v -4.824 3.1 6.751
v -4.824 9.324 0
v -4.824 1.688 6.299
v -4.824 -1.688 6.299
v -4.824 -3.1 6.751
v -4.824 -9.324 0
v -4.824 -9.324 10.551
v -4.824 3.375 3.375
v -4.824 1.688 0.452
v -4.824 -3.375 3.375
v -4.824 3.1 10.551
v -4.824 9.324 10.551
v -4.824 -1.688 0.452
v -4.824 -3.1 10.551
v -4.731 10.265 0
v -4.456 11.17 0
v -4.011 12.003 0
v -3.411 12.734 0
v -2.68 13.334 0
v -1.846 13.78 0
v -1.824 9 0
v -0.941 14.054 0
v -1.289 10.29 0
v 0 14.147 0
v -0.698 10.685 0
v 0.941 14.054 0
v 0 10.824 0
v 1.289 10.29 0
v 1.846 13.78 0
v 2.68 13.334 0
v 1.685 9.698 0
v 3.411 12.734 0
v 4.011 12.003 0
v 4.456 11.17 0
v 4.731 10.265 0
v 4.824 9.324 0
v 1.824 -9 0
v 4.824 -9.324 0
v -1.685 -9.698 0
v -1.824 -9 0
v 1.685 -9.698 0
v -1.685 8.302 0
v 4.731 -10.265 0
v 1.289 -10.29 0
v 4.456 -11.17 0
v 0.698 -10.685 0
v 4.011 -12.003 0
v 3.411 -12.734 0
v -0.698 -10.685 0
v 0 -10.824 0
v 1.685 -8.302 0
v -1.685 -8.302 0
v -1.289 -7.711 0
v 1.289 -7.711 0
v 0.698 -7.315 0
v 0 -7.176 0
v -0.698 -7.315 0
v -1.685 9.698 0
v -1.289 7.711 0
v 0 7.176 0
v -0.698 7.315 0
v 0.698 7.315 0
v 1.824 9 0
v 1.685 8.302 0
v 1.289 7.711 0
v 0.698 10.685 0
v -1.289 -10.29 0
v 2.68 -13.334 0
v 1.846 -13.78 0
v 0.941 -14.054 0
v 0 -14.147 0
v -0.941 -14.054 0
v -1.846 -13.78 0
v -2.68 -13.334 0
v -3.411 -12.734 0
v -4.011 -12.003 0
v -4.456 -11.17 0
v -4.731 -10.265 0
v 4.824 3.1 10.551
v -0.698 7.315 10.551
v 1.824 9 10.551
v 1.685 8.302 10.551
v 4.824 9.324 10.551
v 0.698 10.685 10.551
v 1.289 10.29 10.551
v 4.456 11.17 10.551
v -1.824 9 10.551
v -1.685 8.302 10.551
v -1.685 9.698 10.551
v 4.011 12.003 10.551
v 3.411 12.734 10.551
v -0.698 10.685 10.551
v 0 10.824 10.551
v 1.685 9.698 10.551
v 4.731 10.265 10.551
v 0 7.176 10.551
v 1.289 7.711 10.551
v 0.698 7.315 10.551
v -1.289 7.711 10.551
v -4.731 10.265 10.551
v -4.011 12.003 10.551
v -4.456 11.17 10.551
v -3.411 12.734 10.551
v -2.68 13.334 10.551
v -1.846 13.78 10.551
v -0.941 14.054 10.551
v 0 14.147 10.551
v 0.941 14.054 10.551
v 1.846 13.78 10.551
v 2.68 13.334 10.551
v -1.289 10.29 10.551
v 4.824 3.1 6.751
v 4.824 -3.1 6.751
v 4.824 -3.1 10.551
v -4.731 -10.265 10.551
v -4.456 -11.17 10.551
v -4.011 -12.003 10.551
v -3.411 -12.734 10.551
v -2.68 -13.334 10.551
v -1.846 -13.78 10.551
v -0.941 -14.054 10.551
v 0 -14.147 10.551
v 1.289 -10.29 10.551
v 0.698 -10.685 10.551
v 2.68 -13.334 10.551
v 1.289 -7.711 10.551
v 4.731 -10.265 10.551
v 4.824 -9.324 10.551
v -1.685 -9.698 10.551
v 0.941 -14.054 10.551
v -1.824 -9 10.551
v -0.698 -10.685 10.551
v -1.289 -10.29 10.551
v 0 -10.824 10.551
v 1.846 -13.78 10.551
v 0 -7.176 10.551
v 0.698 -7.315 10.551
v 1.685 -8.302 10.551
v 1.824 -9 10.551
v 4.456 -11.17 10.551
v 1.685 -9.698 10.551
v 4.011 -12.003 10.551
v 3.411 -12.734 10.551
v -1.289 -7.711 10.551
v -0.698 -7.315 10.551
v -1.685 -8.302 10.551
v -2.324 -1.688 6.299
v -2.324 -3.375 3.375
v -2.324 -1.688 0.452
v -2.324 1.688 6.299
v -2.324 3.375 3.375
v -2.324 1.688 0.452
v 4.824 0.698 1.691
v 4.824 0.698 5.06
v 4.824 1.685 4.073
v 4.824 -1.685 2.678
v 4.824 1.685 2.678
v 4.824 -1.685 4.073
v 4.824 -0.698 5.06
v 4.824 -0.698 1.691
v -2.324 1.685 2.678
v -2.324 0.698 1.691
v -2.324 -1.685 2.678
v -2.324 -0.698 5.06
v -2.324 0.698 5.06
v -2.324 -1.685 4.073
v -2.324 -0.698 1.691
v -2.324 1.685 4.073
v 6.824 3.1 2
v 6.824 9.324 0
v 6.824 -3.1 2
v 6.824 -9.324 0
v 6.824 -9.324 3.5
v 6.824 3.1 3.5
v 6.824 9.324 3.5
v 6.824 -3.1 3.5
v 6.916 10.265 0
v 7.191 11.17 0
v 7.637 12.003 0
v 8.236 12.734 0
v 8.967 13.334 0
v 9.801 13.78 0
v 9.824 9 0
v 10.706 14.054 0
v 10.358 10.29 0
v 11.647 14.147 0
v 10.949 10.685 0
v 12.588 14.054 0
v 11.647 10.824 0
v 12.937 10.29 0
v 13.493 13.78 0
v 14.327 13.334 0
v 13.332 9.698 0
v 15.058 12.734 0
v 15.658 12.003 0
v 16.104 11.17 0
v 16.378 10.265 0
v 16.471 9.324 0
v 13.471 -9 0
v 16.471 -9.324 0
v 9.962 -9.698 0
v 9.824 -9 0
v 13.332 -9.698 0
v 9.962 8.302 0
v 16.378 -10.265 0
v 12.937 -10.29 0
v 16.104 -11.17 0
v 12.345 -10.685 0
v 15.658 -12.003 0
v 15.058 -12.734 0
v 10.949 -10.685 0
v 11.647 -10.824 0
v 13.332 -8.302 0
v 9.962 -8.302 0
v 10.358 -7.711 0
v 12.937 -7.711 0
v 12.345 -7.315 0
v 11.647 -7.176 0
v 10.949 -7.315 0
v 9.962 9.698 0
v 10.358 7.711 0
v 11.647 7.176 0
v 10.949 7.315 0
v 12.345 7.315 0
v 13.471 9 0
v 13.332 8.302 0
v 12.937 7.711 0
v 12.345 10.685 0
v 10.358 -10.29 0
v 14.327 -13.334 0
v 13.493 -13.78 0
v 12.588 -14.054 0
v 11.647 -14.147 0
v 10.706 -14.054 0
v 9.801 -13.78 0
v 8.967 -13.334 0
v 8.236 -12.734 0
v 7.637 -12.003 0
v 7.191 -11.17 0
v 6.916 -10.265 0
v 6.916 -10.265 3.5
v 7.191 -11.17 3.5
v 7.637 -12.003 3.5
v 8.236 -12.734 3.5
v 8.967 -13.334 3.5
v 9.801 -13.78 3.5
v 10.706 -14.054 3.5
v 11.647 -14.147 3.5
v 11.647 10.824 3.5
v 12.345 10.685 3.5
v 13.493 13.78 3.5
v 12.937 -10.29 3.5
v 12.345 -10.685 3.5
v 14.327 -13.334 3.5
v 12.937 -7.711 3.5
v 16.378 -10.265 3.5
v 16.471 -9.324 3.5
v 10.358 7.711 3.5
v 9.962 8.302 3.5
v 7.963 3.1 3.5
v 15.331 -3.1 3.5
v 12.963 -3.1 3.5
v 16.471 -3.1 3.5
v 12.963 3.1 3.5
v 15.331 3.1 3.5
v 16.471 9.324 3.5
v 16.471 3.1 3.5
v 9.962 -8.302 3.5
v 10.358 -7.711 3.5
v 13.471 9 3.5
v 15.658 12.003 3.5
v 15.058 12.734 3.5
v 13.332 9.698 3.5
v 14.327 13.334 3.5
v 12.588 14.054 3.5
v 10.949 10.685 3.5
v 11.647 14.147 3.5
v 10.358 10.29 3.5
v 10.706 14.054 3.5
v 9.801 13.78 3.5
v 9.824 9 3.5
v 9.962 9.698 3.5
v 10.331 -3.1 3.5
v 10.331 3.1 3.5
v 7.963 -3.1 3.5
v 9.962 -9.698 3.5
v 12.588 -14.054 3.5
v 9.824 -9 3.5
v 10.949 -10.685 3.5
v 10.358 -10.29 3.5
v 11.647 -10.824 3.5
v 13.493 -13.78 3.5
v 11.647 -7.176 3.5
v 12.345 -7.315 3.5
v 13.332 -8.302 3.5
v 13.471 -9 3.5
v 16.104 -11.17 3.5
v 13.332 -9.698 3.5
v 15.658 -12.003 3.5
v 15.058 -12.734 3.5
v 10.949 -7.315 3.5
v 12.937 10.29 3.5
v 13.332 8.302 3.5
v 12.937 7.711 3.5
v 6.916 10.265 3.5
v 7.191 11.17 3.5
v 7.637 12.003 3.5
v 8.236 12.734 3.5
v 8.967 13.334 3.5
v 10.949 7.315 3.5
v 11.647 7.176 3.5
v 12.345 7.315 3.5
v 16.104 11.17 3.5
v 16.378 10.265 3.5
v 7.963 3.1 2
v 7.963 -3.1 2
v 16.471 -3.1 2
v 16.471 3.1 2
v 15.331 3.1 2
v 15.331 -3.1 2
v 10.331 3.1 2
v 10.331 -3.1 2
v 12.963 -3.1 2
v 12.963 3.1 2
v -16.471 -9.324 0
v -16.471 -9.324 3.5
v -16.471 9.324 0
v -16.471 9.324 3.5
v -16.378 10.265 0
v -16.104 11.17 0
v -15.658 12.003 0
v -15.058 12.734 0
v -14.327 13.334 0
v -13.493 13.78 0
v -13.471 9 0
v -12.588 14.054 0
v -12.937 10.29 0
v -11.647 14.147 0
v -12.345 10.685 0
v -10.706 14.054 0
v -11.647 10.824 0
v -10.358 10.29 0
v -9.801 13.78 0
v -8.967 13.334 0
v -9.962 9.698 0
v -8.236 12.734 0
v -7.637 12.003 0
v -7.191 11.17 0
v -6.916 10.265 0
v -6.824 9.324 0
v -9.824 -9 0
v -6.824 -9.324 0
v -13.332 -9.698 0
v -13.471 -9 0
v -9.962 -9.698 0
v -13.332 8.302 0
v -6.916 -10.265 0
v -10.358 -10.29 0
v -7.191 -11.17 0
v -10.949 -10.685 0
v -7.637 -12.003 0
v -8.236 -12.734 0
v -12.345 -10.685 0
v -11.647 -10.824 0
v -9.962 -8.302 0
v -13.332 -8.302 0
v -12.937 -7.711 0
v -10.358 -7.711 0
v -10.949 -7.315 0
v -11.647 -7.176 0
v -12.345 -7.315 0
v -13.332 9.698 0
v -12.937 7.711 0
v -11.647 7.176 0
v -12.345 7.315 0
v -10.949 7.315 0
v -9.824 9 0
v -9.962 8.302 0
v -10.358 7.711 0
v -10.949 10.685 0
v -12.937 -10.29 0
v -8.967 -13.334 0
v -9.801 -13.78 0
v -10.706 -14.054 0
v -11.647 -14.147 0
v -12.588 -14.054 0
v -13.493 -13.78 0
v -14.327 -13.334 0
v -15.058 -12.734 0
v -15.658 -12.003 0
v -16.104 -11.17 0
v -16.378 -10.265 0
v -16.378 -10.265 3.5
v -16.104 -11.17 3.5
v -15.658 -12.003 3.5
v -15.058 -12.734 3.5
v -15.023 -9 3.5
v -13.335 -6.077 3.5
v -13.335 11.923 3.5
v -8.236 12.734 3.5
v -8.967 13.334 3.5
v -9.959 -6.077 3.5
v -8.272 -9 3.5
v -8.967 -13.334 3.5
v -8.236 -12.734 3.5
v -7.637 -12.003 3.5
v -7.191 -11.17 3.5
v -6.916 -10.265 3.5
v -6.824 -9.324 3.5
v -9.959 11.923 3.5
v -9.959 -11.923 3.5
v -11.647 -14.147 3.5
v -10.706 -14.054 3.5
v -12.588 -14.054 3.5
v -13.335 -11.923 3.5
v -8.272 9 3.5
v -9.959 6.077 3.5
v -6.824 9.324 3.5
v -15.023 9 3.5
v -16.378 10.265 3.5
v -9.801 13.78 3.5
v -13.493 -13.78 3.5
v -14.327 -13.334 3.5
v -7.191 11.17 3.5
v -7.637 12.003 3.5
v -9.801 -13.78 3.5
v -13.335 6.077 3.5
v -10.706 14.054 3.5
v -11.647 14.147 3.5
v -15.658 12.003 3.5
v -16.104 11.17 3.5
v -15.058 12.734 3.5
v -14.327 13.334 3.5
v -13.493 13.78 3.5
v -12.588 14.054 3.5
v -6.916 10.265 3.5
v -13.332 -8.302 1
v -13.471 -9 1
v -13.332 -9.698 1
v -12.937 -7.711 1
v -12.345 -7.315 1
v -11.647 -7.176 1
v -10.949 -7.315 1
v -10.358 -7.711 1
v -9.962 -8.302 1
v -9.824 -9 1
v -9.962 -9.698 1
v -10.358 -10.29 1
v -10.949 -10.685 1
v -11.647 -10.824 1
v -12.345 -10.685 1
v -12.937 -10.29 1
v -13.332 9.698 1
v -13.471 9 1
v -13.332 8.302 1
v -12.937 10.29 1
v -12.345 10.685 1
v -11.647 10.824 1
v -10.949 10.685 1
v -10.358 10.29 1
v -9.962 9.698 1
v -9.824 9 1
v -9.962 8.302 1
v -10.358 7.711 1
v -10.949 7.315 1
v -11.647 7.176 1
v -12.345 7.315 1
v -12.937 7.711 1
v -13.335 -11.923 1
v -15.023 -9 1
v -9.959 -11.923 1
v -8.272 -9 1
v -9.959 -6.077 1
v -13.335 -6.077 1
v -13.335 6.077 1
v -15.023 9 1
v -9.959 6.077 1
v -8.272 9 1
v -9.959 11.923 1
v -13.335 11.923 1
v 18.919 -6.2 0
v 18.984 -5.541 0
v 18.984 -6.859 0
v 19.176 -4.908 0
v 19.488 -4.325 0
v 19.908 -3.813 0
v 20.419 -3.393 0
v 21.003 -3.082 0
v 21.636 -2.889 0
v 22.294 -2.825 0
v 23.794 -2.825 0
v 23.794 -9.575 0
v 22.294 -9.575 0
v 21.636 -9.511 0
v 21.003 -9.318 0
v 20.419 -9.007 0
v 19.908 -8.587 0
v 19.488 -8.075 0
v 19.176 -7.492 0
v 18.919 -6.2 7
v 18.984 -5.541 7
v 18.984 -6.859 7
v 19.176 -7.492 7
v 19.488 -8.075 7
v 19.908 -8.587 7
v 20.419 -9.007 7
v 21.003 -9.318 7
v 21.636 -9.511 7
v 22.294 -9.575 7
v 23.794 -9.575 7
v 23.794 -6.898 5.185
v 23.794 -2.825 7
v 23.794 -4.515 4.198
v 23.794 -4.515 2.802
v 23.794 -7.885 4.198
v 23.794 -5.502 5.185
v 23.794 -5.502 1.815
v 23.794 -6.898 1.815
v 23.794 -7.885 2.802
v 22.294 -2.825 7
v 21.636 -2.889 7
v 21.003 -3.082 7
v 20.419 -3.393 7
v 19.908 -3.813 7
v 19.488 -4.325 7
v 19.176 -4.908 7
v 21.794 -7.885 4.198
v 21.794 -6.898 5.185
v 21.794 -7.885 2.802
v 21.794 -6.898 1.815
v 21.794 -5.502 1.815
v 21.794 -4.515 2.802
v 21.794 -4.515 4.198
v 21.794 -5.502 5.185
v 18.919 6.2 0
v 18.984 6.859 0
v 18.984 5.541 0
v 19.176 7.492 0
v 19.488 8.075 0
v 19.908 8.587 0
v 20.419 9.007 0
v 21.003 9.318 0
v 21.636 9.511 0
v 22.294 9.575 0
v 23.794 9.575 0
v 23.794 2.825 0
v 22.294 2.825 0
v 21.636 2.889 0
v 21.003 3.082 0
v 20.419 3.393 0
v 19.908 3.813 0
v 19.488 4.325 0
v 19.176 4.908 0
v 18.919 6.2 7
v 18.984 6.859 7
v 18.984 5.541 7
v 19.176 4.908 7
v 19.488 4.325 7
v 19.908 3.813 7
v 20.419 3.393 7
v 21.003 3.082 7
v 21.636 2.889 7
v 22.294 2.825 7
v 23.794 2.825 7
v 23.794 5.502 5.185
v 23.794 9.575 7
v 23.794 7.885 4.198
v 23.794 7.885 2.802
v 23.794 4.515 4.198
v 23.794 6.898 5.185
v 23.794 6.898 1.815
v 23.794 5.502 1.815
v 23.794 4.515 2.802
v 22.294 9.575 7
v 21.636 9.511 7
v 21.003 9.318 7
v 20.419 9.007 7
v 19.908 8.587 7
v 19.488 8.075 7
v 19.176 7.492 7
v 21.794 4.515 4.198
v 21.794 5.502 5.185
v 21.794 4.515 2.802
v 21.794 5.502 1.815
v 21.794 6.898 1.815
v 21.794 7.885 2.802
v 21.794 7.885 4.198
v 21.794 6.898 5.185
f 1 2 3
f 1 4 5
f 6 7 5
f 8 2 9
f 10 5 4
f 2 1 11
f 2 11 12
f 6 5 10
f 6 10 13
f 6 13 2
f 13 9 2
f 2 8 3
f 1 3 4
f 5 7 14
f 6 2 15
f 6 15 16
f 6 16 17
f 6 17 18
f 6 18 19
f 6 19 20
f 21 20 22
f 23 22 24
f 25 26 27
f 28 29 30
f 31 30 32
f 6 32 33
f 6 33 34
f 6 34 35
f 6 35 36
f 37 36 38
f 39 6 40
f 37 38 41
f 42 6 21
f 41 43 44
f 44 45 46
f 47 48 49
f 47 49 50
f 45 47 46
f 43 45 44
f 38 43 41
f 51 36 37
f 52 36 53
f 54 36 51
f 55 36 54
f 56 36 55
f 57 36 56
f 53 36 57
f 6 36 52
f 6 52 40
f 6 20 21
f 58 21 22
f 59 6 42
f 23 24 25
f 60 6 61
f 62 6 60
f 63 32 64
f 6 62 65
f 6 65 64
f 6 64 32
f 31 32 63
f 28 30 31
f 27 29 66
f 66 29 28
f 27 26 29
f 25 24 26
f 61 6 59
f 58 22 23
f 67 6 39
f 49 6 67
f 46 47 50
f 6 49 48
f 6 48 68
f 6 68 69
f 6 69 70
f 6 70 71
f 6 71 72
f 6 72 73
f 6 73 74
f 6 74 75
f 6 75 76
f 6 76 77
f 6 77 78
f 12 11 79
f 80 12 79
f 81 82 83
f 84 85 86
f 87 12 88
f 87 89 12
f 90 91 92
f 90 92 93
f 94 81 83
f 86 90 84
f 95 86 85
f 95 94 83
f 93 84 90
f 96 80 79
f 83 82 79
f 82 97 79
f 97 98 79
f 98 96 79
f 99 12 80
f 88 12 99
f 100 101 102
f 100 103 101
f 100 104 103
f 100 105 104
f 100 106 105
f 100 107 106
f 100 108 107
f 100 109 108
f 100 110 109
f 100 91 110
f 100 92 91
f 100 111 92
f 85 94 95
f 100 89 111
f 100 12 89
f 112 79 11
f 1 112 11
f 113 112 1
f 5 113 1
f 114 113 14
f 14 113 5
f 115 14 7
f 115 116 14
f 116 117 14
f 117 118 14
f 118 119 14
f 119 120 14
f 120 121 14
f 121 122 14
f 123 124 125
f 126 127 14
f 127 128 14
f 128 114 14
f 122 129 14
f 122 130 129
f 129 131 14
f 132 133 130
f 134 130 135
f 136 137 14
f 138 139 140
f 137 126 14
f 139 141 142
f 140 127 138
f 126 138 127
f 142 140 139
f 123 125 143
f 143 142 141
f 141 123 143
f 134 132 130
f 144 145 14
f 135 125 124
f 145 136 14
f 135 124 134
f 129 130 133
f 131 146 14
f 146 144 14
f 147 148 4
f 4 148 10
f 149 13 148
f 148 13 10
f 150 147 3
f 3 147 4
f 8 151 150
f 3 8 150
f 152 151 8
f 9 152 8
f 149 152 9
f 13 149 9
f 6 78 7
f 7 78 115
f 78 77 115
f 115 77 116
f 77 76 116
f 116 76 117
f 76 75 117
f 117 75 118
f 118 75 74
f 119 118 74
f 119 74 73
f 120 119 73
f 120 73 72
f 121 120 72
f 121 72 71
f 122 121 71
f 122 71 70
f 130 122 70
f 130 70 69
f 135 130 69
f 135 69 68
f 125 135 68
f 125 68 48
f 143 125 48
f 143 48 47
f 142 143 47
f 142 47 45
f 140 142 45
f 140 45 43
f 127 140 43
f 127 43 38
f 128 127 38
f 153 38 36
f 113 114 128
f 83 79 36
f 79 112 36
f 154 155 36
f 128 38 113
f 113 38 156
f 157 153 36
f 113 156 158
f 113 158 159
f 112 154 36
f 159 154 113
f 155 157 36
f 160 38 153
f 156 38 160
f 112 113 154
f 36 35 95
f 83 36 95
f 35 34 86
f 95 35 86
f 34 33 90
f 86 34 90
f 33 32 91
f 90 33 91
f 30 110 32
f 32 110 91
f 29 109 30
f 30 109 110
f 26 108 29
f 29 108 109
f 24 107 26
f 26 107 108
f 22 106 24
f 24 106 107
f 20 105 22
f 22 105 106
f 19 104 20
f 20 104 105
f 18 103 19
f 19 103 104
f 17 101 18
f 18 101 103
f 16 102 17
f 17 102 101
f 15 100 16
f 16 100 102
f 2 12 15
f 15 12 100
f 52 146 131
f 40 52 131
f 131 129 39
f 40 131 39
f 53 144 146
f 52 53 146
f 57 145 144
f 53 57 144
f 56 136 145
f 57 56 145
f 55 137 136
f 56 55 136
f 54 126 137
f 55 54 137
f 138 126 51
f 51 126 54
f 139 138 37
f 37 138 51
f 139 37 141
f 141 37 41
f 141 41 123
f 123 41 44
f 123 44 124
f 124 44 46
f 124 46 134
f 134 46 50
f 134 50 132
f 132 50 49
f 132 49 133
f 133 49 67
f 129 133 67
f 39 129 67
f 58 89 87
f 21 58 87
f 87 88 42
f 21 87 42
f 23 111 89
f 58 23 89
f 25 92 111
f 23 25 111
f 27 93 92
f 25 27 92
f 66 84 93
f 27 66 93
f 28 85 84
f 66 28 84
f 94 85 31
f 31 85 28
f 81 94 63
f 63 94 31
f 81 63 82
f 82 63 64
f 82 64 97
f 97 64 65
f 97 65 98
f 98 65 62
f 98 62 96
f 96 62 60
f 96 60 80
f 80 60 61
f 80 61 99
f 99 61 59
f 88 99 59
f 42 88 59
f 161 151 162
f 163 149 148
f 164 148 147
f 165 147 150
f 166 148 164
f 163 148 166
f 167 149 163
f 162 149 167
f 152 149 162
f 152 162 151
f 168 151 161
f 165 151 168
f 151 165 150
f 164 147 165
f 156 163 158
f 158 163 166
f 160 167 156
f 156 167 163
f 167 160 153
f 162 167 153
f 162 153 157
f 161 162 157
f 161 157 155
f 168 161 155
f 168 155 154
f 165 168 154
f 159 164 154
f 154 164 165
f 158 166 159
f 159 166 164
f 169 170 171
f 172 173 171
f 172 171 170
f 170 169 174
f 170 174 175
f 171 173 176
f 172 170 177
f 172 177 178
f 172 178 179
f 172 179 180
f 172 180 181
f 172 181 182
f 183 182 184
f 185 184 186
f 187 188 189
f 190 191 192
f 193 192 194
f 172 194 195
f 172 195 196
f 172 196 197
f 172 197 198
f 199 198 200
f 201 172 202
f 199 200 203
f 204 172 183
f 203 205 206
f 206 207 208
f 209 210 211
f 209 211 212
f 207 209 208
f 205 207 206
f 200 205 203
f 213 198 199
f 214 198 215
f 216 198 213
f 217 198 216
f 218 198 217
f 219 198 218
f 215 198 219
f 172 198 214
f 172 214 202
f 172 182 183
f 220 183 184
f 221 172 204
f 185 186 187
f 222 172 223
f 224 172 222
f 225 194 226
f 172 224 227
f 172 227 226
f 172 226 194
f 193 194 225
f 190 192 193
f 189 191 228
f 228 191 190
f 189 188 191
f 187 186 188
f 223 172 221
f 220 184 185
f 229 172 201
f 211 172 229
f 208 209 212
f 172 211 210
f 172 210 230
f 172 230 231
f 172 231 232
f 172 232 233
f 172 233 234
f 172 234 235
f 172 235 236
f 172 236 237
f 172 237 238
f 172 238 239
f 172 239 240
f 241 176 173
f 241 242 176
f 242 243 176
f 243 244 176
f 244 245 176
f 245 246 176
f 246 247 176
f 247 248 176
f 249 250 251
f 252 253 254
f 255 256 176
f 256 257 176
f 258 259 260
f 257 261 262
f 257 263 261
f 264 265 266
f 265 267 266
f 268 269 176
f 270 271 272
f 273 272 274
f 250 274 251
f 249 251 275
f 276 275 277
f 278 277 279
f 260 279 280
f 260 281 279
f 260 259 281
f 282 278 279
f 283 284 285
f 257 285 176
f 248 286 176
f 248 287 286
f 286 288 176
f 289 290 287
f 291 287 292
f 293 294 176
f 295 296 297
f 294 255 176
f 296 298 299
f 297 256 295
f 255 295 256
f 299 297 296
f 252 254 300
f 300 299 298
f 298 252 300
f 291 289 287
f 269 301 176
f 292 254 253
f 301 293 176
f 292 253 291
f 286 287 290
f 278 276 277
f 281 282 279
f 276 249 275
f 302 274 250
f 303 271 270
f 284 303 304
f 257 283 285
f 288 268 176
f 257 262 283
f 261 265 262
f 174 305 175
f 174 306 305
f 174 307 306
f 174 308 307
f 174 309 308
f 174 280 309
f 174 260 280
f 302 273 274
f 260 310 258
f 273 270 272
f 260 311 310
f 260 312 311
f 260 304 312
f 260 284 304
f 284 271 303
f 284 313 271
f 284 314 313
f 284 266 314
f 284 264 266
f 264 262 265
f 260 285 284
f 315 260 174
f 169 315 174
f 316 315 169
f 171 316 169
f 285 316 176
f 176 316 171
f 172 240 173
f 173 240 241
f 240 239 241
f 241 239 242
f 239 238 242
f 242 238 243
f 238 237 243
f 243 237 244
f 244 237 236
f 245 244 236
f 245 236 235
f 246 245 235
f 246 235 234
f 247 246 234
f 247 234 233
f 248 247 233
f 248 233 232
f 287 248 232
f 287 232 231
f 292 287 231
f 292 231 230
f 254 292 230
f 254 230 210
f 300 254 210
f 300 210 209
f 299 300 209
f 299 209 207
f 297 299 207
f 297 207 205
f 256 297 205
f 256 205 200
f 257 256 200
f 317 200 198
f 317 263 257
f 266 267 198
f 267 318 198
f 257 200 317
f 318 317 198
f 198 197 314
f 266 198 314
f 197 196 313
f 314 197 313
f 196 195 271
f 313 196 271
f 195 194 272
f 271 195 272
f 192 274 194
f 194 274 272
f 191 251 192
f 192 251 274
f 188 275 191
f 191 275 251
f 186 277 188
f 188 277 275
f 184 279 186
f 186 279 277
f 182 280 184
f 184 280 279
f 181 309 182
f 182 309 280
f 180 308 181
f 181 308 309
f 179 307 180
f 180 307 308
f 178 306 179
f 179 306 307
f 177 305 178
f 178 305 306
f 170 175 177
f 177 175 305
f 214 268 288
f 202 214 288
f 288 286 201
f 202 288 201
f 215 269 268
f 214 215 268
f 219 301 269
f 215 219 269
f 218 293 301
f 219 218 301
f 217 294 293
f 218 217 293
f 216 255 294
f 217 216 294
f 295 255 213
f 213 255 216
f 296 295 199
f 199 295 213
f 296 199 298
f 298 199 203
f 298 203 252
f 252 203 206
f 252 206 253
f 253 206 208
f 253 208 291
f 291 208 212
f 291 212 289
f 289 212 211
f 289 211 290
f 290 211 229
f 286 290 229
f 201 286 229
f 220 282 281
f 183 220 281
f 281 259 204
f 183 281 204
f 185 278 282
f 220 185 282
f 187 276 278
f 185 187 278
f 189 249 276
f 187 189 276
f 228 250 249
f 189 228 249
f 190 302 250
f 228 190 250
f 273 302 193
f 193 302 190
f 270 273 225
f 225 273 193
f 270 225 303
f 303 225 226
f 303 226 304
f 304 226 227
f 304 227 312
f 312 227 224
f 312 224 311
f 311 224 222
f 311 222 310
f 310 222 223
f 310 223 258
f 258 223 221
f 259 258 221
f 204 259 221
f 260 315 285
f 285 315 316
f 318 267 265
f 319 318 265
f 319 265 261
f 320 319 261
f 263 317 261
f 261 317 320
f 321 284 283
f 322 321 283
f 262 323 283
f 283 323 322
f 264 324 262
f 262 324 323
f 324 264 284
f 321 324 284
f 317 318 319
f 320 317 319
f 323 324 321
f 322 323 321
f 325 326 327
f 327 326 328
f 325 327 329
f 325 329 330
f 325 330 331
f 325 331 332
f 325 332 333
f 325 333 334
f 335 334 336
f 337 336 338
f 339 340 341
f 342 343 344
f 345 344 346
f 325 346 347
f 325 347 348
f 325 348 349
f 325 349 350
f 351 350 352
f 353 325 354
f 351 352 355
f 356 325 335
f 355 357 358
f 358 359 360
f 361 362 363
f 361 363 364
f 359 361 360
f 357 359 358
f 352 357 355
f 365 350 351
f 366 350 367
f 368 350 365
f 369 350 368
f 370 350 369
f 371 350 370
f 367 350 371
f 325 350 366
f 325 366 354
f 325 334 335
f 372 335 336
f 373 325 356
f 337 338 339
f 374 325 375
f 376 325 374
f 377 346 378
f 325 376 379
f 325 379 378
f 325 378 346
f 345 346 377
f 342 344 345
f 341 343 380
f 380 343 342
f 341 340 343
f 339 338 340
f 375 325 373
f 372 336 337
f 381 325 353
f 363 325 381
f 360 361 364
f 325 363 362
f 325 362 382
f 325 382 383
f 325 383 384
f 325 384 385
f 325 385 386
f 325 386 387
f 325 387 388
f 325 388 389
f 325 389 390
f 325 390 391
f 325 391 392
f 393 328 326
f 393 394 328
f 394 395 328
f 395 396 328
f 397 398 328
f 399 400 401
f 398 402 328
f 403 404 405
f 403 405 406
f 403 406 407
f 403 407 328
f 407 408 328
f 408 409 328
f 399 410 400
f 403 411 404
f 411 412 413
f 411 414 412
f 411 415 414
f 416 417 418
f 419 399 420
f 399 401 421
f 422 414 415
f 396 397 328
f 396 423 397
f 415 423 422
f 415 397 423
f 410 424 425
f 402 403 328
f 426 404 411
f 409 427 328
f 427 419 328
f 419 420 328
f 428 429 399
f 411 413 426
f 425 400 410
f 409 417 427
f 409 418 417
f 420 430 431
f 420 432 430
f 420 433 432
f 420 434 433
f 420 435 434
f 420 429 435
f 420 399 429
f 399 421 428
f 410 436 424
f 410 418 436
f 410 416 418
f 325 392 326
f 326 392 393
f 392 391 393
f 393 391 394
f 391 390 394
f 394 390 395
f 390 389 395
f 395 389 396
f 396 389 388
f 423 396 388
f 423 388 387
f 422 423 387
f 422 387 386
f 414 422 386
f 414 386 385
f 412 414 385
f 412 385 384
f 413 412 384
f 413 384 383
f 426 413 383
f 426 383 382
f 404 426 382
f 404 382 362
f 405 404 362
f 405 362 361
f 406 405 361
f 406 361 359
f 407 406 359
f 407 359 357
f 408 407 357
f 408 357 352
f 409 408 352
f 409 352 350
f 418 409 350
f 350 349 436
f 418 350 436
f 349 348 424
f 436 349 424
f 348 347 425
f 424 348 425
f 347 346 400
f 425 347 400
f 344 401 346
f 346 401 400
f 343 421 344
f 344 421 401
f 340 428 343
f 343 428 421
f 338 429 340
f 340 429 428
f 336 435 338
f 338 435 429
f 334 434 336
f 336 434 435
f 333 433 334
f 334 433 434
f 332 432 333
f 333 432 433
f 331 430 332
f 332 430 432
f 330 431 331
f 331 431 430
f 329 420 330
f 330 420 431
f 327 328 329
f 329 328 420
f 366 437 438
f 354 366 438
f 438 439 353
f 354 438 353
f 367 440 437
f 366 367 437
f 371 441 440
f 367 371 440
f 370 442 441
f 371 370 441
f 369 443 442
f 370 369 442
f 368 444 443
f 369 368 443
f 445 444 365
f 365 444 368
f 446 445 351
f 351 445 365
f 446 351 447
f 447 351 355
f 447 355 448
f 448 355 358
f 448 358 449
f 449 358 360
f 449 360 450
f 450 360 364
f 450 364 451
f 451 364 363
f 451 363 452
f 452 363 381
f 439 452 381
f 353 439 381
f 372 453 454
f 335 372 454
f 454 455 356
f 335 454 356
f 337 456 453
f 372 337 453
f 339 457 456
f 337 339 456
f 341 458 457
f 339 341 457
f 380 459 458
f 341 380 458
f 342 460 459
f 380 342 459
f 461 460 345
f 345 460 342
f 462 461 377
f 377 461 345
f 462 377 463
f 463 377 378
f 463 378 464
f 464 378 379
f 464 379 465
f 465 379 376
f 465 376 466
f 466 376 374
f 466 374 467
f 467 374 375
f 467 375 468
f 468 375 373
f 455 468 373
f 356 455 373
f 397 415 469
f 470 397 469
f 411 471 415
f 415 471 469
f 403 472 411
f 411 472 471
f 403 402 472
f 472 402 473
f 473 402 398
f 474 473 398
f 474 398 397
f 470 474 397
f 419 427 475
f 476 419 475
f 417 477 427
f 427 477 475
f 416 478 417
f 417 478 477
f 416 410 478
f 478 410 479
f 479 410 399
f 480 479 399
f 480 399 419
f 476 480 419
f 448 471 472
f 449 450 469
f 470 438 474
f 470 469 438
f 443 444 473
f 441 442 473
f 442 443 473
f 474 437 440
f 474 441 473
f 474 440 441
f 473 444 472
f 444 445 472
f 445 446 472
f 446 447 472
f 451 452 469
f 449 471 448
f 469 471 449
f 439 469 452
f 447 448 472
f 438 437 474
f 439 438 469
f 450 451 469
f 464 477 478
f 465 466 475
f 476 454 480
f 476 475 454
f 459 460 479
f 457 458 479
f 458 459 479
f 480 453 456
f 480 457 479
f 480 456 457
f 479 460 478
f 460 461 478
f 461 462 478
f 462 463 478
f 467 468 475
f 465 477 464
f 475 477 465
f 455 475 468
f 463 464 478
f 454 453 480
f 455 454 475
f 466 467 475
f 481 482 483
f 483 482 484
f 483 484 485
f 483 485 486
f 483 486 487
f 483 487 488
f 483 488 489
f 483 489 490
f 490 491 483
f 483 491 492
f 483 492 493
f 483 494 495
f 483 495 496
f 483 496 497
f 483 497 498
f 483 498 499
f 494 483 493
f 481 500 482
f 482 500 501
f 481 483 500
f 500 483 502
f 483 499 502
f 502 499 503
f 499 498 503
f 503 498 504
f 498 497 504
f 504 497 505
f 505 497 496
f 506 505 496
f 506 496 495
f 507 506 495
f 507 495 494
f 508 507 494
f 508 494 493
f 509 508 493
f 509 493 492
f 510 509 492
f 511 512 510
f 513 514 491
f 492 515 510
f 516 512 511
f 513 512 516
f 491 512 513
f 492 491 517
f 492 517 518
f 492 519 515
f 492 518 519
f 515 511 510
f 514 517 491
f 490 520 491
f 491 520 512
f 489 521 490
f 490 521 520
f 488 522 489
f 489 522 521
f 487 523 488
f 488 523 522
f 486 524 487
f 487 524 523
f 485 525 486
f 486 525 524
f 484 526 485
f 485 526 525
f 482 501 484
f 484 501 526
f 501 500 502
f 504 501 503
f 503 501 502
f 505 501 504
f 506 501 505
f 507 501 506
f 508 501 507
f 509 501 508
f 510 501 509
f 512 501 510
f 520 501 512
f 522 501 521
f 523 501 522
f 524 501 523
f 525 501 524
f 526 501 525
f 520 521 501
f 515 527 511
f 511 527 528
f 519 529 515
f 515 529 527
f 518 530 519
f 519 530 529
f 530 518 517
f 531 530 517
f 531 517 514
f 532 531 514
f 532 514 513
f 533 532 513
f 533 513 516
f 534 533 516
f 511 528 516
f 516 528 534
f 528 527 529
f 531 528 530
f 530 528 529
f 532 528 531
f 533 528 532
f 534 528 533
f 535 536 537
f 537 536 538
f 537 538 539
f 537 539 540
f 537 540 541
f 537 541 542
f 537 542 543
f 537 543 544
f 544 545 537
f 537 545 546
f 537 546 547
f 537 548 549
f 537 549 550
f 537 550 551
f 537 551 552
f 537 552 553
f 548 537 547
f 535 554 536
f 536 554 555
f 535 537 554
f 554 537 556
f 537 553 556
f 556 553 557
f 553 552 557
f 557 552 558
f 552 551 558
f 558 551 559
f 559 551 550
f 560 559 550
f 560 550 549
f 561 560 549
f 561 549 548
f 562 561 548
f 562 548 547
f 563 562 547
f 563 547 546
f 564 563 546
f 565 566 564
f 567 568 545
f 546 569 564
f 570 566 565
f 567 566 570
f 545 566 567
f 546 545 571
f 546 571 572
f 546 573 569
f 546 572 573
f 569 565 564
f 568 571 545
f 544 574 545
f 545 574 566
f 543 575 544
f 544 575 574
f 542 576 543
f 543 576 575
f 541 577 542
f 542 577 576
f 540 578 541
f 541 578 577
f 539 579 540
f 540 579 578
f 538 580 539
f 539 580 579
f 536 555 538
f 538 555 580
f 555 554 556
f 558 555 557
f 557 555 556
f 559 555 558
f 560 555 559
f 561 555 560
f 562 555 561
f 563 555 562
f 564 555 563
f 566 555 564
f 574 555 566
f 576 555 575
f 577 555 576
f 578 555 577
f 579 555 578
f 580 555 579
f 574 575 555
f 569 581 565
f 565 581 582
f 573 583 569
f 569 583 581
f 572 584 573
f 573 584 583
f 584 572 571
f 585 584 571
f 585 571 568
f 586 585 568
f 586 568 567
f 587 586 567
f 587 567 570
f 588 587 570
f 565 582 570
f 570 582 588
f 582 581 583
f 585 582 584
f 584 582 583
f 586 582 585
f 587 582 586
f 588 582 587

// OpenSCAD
belt_pitch = 5;
belt_width = 6.2;
belt_height = 3.8;

hole_spacing = 18;

ram_length = 1.5;

m3_diameter = 3 / cos(180 / 8) + 0.4;
m3_radius = m3_diameter / 2;

m3_nut_diameter = 5.5 / cos(180 / 6) + 0.4;
m3_nut_radius = m3_nut_diameter / 2;

m3_nut_depth = 2.5;

wall = 3;
extrusion_width = 0.4;

clamp_height = 3.5;
belt_depth = 2;

ram_height = 7;

module clamp(h=10) {
	translate([-wall - m3_radius, 0, 0])
	difference() {
		intersection() {
			translate([0, belt_width / -2 - m3_diameter - wall - extrusion_width * 2 - ((hole_spacing-10)/2), 0]) cube([wall * 2 + m3_diameter, belt_width + m3_diameter * 2 + wall * 2 + extrusion_width * 4 + (hole_spacing-10), h]);
			union() {
				translate([wall + m3_radius, belt_width / 2 + m3_radius + extrusion_width + ((hole_spacing-10)/2), 0]) cylinder(r=wall + m3_radius, h=h + 1, $fn=32);
				translate([wall + m3_radius, -belt_width / 2 - m3_radius - extrusion_width - ((hole_spacing-10)/2), 0]) cylinder(r=wall + m3_radius, h=h + 1, $fn=32);
				translate([0, -belt_width / 2 - m3_radius - extrusion_width - ((hole_spacing-10)/2), 0]) cube([wall * 2 + m3_diameter, belt_width + m3_diameter  + extrusion_width * 2 + (hole_spacing-10), h + 1]);
			}
		}
		translate([wall + m3_radius, hole_spacing/2, -1]) cylinder(r=m3_radius, h=h + 2, $fn=16);
		translate([wall + m3_radius, -hole_spacing/2, -1]) cylinder(r=m3_radius, h=h + 2, $fn=16);
	}
}

module clamp_base() {
	difference() {
		clamp(belt_height + m3_nut_diameter);

		translate([-1 - wall - m3_radius, -belt_width / 2, m3_nut_diameter]) cube([wall * 4, belt_width, belt_height + 1]);
		translate([-1 - wall - m3_radius, 0, m3_nut_radius]) rotate([0, 90, 0]) rotate([0, 0, 180 / 8]) cylinder(r=m3_radius, h=wall * 4, $fn=8);
		translate([-1 - wall - m3_radius, 0, m3_nut_radius]) rotate([0, 90, 0]) rotate([0, 0, 180 / 6]) cylinder(r=m3_nut_radius, h=1 + m3_nut_depth, $fn=6);
	}
}

module clamp_top() {
	difference() {
		clamp(clamp_height);
		translate([ - belt_pitch / 3.8, -belt_width / 2, wall - 1]) cube([belt_pitch / 1.9, belt_width, 5]);
		translate([- belt_pitch / 3.8 + belt_pitch, -belt_width / 2, wall - 1]) cube([belt_pitch / 1.9, belt_width, 5]);
		translate([- belt_pitch / 3.8 - belt_pitch, -belt_width / 2, wall - 1]) cube([belt_pitch / 1.9, belt_width, 5]);
	}
}

module clamp_trap() {
	difference() {
		clamp(clamp_height);
		translate([0, hole_spacing/2, max(clamp_height - m3_nut_depth, 1)]) cylinder(r=m3_nut_radius, h=m3_nut_depth + 1, $fn=6);
		translate([0, -hole_spacing/2, max(clamp_height - m3_nut_depth, 1)]) cylinder(r=m3_nut_radius, h=m3_nut_depth + 1, $fn=6);
	}
}

module ram() {
	difference() {
		union() {
			cylinder(r=m3_nut_radius, h=ram_height, $fn=32);
			translate([0, -m3_nut_radius, 0]) cube([ram_length + 0.1, m3_nut_diameter, ram_height]);
		}
		translate([ram_length, -m3_nut_radius - 1, -1]) cube([m3_nut_diameter + 2, m3_nut_diameter + 2, ram_height + 2]);
		translate([-0.5, 0, ram_height / 2]) rotate([0, 90, 0]) rotate([0, 0, 180 / 8]) cylinder(r=m3_radius, h=2 + ram_length, $fn=8);
	}
}

clamp_base();
translate([wall * 2 + m3_diameter + 2, 0, 0]) clamp_top();
translate([-wall * 2 - m3_diameter - 2, 0, 0]) clamp_trap();
translate([wall * 4 + m3_diameter * 2 + 3, -belt_width, 0]) ram();
translate([wall * 4 + m3_diameter * 2 + 3, belt_width, 0]) ram();
